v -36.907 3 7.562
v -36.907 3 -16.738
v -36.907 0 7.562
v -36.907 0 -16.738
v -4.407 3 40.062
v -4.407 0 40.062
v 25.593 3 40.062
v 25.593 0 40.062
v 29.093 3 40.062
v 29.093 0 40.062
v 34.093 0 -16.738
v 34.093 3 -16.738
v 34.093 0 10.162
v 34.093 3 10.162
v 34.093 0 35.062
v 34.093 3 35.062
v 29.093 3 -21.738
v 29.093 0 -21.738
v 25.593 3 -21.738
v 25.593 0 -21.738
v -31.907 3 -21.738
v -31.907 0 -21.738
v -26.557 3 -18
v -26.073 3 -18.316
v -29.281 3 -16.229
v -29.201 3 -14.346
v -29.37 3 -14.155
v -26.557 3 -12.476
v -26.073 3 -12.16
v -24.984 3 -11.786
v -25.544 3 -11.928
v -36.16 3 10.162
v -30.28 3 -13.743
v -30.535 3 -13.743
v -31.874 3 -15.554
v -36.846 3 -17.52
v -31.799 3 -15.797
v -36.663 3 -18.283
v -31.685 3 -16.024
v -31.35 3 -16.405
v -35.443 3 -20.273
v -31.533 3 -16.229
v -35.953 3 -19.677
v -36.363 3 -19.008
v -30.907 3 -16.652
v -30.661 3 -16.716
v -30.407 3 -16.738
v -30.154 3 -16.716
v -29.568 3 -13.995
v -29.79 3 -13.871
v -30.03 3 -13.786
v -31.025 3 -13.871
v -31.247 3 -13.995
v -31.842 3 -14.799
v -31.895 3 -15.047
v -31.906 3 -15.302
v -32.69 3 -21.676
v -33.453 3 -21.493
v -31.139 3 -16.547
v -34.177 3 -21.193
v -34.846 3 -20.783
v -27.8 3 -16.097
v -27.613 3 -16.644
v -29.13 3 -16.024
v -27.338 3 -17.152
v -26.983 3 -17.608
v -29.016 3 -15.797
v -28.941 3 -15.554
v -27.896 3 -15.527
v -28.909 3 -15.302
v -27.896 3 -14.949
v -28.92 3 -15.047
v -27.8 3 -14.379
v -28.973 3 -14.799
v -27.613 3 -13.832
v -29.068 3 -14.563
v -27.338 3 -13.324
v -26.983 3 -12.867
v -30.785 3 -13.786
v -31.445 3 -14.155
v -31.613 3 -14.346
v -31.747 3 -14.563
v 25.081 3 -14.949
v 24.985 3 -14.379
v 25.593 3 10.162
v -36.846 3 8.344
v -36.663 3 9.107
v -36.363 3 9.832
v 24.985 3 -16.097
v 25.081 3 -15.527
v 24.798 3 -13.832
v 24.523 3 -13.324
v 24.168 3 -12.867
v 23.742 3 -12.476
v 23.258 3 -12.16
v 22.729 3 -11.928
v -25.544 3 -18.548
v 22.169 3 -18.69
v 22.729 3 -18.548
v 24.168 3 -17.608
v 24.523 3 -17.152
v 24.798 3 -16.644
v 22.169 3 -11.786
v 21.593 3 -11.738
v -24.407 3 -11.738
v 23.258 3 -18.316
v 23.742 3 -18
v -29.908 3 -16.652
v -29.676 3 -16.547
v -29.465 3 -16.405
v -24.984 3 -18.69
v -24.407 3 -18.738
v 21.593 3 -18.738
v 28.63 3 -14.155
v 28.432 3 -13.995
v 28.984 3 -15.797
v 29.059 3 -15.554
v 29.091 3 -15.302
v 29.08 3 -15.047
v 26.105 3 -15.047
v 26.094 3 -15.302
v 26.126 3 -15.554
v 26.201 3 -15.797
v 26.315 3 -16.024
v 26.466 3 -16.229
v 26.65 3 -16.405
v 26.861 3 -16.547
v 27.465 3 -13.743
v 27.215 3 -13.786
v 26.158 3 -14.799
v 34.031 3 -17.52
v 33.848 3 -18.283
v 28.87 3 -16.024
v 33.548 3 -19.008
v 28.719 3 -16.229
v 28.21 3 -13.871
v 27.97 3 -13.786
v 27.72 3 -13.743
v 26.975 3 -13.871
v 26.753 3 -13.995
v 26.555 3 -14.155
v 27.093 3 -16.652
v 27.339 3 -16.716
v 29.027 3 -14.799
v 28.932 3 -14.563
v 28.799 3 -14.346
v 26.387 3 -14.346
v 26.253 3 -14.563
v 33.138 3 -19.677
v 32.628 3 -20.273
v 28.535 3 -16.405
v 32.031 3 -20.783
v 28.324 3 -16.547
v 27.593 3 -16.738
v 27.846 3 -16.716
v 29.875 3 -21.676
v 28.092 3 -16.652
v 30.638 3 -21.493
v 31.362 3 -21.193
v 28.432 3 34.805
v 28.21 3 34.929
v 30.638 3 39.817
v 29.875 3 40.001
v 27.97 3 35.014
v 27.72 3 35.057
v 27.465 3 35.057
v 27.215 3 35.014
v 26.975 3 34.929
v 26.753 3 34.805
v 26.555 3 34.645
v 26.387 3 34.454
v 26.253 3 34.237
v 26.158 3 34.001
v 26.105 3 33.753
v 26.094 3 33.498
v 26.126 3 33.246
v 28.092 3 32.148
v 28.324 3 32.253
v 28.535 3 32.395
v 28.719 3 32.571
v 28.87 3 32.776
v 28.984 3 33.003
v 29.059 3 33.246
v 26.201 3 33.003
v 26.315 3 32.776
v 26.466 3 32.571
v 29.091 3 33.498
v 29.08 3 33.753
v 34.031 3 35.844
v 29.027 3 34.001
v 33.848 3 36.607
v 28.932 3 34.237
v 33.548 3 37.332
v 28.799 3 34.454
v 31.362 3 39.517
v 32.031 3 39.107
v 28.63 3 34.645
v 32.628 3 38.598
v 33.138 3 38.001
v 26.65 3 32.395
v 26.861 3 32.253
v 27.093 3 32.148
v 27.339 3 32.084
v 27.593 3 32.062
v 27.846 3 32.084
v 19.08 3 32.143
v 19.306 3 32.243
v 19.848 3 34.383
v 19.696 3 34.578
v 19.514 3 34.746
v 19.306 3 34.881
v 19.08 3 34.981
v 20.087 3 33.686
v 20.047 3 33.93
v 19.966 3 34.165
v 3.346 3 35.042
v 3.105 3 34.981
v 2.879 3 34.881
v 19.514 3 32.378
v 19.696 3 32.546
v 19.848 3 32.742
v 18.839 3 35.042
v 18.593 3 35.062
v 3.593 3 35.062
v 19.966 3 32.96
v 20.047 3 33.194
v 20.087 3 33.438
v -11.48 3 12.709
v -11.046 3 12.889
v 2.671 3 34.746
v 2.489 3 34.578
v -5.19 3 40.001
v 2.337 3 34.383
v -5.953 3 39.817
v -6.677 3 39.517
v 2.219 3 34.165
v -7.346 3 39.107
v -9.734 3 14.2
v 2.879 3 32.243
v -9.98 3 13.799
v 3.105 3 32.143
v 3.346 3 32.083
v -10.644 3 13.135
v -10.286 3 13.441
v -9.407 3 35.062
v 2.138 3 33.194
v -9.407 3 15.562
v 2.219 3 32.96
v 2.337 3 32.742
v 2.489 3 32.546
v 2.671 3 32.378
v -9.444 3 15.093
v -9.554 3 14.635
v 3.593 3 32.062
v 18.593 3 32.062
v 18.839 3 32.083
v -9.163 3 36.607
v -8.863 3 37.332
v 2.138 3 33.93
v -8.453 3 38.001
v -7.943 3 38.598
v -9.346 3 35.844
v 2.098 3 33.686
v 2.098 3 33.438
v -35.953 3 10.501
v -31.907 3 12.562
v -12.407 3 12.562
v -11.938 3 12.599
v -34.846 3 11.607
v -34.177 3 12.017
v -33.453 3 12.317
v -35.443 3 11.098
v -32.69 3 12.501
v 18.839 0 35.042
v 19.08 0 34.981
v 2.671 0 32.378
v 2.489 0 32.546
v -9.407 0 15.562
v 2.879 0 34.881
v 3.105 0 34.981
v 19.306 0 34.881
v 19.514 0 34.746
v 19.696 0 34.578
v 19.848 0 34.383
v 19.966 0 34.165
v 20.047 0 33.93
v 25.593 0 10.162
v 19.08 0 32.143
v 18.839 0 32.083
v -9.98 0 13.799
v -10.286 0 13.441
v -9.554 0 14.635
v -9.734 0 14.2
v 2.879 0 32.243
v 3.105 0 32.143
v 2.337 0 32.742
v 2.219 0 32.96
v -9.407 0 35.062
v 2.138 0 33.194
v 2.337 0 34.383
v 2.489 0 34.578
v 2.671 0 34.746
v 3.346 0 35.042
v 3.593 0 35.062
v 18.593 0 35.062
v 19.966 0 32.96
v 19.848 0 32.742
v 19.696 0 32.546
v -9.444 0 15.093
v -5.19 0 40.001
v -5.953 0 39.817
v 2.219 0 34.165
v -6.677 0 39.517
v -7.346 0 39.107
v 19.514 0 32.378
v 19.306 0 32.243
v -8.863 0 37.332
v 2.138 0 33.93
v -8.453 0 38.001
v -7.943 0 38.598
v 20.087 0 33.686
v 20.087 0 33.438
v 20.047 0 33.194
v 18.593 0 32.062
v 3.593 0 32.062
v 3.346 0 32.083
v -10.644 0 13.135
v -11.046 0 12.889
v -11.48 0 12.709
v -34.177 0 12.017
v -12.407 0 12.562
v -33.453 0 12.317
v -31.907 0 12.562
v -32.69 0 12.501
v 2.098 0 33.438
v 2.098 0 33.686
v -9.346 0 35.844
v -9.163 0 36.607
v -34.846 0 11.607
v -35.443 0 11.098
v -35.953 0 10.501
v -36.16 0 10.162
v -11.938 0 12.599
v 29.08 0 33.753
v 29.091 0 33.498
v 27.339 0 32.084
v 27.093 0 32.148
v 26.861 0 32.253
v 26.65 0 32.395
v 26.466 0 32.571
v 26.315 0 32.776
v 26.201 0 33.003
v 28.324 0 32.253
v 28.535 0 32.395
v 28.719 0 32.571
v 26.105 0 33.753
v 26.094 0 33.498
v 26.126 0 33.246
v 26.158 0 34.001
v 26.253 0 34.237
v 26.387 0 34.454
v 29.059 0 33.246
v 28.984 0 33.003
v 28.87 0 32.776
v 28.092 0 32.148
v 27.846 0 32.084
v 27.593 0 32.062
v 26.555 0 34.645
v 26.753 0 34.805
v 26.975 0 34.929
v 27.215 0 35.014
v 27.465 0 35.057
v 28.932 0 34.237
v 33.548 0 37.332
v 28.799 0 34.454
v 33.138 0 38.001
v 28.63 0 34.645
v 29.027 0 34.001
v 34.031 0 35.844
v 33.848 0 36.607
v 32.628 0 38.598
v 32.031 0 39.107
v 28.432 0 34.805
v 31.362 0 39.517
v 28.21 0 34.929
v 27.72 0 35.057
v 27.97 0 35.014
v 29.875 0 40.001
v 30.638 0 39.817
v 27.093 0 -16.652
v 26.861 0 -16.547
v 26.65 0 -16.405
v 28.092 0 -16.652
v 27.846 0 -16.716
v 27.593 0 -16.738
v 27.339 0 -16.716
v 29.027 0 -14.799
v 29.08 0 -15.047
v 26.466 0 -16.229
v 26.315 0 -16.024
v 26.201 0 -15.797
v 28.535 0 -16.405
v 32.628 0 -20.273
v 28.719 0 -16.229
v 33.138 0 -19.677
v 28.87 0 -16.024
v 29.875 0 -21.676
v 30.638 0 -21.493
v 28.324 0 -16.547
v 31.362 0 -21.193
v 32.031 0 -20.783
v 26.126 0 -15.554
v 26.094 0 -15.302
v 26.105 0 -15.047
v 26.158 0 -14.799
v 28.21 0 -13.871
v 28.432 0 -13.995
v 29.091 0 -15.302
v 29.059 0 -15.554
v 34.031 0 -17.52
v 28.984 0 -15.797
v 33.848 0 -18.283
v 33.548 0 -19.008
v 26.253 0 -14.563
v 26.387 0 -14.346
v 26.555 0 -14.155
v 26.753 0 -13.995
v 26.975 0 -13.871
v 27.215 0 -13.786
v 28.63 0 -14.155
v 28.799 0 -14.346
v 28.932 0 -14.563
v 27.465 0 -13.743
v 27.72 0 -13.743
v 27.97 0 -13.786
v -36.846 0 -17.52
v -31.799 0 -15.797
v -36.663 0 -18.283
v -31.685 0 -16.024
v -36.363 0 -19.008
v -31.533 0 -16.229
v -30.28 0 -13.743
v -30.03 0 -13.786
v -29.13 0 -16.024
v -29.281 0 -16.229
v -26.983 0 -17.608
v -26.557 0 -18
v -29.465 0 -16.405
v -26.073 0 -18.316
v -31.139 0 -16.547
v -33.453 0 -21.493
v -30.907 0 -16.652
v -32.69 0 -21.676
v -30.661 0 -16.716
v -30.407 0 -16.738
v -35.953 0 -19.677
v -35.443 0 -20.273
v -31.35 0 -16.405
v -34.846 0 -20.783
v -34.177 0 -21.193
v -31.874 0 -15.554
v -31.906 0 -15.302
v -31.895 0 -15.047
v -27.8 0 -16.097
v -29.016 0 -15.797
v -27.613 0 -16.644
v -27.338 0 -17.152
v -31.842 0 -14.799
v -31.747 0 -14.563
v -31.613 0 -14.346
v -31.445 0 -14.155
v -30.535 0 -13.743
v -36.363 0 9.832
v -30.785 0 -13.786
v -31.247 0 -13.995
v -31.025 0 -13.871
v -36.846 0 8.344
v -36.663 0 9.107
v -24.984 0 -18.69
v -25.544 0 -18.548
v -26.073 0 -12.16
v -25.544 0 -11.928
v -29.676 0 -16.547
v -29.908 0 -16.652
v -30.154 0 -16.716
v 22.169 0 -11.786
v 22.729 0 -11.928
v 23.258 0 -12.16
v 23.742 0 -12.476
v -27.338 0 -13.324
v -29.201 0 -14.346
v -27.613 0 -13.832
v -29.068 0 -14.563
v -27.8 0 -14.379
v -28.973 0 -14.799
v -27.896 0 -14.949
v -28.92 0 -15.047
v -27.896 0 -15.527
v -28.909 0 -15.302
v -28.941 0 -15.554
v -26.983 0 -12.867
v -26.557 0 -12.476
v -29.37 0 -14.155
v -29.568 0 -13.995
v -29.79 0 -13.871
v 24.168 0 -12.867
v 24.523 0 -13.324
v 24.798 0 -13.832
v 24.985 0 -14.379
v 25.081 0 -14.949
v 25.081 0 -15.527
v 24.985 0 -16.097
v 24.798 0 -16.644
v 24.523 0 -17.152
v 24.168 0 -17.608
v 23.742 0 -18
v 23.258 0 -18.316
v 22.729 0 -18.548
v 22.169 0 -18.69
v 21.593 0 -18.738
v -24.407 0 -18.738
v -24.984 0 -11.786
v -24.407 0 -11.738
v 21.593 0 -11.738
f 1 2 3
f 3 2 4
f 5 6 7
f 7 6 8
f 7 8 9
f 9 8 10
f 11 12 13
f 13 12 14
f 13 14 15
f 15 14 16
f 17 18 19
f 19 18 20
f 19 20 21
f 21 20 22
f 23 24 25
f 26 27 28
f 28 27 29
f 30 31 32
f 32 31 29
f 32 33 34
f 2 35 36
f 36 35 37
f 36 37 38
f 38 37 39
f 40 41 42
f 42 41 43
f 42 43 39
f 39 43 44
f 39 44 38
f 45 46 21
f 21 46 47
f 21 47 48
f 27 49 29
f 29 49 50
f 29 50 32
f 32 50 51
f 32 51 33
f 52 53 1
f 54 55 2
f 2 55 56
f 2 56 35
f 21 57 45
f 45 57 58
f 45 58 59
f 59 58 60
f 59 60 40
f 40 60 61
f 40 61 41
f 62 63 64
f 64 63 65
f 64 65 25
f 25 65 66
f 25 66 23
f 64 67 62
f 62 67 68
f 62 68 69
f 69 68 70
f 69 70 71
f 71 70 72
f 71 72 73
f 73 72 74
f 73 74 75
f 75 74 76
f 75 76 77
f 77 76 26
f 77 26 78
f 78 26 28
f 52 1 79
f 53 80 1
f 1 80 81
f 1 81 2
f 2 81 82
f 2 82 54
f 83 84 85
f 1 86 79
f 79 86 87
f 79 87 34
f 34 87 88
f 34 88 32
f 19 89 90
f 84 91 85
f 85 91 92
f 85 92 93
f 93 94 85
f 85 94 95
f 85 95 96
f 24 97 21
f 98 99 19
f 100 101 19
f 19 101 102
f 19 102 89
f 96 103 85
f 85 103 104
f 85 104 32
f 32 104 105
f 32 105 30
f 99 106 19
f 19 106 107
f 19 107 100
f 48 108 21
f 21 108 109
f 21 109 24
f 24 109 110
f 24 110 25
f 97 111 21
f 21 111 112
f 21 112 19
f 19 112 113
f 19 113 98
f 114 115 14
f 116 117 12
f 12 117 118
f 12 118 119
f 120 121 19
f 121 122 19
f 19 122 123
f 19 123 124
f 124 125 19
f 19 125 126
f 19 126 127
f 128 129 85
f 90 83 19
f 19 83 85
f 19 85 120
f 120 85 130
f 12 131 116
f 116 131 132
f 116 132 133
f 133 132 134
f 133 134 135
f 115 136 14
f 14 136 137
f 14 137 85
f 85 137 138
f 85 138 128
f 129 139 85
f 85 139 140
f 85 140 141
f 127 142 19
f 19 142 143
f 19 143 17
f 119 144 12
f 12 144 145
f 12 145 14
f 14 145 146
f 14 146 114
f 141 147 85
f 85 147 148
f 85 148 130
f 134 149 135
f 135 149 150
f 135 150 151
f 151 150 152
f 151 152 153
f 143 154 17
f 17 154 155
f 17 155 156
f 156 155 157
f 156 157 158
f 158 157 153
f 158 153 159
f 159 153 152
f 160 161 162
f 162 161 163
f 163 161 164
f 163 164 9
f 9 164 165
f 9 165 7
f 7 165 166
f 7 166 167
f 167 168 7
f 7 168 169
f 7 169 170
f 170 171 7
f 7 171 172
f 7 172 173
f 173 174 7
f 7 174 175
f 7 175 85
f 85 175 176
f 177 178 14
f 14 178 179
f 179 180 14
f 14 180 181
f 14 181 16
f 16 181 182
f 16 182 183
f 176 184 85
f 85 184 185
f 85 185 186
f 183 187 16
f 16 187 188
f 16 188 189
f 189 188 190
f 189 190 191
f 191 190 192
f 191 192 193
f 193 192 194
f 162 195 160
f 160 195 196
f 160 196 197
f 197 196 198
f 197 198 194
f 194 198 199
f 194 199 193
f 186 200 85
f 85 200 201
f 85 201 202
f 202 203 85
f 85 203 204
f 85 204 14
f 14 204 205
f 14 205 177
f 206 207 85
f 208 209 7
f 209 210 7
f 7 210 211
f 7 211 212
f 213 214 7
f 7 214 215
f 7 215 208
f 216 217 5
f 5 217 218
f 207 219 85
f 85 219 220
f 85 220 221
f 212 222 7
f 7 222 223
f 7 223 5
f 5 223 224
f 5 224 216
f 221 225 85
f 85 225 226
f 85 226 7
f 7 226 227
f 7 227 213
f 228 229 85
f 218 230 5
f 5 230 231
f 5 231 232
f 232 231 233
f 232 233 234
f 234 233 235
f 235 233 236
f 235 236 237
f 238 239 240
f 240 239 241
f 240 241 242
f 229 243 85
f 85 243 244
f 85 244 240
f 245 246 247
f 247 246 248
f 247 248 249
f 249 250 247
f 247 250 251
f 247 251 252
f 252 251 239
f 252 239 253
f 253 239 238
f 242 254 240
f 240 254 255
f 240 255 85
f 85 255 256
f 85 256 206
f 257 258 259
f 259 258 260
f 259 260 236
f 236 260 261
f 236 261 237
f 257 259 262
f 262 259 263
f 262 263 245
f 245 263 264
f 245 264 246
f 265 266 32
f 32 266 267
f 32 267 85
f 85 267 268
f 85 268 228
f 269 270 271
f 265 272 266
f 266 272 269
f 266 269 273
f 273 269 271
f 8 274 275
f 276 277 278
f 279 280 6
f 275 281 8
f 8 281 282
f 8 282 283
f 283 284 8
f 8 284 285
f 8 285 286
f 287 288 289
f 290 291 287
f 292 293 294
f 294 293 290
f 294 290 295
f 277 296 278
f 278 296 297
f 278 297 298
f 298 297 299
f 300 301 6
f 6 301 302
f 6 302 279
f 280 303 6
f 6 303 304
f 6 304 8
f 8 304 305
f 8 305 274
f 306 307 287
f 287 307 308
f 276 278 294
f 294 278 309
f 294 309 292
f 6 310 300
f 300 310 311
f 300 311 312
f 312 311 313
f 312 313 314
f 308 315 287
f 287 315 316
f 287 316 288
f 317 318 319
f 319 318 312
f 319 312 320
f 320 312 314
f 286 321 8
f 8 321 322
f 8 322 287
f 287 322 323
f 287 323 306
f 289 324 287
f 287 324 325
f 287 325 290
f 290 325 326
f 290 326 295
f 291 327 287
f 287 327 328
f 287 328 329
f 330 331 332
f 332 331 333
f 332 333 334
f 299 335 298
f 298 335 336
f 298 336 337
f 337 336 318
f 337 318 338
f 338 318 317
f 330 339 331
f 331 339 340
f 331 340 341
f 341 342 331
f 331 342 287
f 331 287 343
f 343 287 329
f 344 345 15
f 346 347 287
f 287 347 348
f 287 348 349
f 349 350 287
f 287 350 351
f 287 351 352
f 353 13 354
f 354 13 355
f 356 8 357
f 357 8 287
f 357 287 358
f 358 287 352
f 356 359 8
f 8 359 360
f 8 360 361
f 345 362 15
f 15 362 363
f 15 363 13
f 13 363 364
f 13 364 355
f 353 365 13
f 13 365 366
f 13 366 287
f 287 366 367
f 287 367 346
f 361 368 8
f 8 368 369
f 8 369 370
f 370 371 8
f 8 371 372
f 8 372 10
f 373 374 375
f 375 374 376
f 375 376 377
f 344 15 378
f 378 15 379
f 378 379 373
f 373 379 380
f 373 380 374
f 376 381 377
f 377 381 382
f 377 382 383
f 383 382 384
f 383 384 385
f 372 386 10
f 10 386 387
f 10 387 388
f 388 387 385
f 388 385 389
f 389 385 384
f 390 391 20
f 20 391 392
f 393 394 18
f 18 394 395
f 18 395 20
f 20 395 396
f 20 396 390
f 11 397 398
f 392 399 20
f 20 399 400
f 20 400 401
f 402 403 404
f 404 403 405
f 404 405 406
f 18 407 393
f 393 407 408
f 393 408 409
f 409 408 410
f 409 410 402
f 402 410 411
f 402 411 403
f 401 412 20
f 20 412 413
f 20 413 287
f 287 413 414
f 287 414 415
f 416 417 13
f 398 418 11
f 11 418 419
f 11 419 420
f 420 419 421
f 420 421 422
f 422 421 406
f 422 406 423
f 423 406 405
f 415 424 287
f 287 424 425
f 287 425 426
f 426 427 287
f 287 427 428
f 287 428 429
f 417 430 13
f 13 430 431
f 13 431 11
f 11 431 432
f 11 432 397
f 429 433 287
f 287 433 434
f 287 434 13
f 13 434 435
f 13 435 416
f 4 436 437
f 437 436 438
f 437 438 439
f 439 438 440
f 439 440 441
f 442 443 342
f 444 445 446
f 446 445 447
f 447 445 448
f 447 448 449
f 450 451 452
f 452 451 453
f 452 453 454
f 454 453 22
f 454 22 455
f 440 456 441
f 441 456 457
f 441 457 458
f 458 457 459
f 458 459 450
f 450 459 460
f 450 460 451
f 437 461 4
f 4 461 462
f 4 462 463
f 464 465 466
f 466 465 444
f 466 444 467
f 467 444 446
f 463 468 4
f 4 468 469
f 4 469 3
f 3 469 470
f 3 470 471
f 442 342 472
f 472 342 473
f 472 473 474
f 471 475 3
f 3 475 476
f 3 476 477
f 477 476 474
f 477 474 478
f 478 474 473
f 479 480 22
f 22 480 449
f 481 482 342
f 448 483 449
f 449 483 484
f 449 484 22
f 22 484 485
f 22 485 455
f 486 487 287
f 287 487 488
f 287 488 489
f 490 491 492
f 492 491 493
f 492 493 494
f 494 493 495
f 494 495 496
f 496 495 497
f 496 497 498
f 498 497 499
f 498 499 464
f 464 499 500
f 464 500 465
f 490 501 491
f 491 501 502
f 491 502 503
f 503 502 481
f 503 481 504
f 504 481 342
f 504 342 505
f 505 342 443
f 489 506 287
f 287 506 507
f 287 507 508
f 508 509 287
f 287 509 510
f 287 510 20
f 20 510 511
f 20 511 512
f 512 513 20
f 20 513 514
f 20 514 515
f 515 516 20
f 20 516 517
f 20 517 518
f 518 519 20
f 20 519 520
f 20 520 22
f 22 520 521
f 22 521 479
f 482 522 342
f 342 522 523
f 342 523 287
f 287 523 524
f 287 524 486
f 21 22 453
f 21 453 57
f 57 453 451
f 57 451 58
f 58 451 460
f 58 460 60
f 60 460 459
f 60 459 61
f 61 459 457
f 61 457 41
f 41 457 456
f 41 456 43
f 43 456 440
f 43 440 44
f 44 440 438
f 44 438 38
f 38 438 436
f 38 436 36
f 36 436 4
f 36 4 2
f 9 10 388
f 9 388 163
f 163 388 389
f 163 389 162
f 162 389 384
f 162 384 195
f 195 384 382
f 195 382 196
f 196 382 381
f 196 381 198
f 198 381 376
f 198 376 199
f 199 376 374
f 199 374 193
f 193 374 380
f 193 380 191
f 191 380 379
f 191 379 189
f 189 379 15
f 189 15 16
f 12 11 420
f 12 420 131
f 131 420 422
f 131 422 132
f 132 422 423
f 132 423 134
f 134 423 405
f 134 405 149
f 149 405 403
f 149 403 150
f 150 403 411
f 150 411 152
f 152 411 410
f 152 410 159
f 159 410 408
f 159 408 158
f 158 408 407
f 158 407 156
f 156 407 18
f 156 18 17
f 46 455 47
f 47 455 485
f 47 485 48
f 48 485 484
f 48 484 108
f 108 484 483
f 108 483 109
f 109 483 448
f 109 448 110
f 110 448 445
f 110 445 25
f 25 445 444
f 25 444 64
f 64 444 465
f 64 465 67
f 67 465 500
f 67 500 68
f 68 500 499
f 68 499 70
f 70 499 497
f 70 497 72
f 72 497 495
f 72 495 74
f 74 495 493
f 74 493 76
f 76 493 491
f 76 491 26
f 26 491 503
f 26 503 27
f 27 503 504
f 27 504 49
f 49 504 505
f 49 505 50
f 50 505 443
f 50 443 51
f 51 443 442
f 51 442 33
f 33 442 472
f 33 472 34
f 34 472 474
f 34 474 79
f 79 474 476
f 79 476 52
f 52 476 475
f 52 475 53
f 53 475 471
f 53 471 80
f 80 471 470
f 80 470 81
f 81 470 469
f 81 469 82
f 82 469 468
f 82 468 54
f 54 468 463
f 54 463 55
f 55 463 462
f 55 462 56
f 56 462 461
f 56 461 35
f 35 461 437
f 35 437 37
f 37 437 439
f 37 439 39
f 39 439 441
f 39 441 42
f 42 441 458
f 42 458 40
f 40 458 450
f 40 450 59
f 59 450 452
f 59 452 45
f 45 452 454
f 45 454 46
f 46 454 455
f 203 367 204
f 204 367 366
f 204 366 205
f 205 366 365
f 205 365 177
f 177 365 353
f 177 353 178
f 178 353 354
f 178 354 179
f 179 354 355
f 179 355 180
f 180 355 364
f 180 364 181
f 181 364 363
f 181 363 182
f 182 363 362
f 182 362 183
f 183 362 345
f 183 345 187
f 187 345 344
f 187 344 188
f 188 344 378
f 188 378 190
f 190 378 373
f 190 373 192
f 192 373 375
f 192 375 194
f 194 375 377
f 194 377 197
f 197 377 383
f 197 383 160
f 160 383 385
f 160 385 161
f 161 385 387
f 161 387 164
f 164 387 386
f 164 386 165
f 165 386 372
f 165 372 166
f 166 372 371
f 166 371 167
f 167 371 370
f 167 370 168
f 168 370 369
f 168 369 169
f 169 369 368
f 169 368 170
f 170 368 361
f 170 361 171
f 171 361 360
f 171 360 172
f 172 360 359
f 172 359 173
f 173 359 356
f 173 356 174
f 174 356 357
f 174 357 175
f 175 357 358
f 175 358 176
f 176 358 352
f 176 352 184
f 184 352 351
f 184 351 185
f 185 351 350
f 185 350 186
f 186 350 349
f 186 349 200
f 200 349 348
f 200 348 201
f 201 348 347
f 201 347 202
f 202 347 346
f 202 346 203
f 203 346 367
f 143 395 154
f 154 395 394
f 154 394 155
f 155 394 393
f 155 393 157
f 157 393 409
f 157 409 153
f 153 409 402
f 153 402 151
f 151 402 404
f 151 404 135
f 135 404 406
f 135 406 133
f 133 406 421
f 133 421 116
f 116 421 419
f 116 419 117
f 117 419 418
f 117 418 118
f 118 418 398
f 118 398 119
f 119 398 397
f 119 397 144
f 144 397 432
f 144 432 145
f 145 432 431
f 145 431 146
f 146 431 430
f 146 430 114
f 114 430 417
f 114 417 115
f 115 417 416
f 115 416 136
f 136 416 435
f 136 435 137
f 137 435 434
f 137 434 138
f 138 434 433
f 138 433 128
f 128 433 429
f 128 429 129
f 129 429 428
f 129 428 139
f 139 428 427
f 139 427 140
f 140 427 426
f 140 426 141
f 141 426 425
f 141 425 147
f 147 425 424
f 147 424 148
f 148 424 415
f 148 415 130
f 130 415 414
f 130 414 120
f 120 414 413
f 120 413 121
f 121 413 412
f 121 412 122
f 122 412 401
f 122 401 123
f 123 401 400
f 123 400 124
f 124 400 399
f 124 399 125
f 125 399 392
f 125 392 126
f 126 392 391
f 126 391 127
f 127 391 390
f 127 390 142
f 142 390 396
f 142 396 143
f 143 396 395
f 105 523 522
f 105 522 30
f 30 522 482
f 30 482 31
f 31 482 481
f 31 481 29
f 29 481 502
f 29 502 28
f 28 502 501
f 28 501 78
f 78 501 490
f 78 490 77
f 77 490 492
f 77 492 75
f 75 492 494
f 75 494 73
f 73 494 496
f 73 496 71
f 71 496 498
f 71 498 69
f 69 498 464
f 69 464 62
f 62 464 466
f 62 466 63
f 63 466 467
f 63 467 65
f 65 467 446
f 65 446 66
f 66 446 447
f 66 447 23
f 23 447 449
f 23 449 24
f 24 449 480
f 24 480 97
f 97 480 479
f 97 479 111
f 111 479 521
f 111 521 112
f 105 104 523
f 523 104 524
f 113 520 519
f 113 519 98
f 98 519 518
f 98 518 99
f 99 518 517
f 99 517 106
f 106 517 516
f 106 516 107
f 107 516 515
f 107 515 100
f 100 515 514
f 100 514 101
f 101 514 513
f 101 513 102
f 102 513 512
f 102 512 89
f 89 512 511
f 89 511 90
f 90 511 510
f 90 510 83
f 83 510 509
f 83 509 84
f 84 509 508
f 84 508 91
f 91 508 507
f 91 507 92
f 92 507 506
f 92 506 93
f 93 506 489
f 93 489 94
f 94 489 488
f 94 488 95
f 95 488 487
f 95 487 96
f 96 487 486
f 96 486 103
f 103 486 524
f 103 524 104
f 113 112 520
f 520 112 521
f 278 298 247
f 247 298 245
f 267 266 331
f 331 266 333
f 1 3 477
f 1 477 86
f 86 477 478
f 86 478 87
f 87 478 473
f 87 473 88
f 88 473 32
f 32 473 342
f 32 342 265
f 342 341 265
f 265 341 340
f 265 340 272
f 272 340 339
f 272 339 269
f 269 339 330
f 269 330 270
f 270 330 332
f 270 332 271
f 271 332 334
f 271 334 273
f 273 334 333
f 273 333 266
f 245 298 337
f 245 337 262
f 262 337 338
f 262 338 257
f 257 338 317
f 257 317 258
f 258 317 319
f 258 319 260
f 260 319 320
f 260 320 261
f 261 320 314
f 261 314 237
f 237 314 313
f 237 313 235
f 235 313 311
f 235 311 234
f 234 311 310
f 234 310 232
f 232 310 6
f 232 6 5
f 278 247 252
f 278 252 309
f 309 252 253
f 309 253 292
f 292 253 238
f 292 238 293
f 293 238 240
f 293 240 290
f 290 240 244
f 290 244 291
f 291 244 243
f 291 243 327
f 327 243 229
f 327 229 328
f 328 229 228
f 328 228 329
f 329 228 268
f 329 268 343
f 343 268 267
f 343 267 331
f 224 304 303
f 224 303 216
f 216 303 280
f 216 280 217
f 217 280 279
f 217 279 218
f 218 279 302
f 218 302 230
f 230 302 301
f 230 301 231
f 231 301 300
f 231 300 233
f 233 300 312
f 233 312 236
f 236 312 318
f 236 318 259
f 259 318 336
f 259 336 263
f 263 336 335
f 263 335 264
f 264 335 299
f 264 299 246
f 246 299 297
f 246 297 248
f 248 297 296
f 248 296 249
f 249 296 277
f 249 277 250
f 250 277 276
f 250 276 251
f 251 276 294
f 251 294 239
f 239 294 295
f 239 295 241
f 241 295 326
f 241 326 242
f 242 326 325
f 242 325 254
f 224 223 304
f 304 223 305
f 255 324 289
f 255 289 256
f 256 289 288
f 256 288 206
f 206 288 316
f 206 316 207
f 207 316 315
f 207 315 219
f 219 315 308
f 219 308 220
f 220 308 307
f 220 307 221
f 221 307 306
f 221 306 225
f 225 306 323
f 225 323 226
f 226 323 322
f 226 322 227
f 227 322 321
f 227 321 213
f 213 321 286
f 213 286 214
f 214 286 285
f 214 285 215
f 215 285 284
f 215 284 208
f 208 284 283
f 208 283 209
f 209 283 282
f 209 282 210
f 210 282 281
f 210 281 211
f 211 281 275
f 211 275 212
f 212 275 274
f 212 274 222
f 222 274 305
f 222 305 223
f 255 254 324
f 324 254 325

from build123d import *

# Parameters (mm, degrees)
SKETCH_1_W          = 71
SKETCH_1_H          = 61.8
EXTRUDE_1_DEPTH     = 3
FILLET_1_R          = 5
FILLET_3_R          = 5
FILLET_4_R          = 5
SKETCH_2_R          = 1.5
CUT_EXTRUDE_1_DEPTH = 4
CUT_EXTRUDE_2_DEPTH = 4
SKETCH_6_W          = 27.5
SKETCH_6_H          = 27.5
CUT_EXTRUDE_3_DEPTH = 4
FILLET_5_R          = 5
FILLET_6_R          = 3
CUT_EXTRUDE_4_DEPTH = 4


with BuildPart() as part:
    # 草图1 → 凸台-拉伸1 (new body)
    with BuildSketch(Plane(origin=(0, 0, 0), x_dir=(1, 0, 0), z_dir=(0, 1, 0))):
        with Locations((-1.407488987, -9.162114537)):
            Rectangle(SKETCH_1_W, SKETCH_1_H)
    extrude(amount=EXTRUDE_1_DEPTH)

    # 圆角1
    fillet_1_edges = [part.edges().sort_by_distance(p)[0] for p in [
        (-36.907488987, 1.5, -21.737885463),
    ]]
    fillet(fillet_1_edges, radius=FILLET_1_R)

    # 圆角3
    fillet_3_edges = [part.edges().sort_by_distance(p)[0] for p in [
        (34.092511013, 1.5, 40.062114537),
    ]]
    fillet(fillet_3_edges, radius=FILLET_3_R)

    # 圆角4
    fillet_4_edges = [part.edges().sort_by_distance(p)[0] for p in [
        (34.092511013, 1.5, -21.737885463),
    ]]
    fillet(fillet_4_edges, radius=FILLET_4_R)

    # 草图2 → 切除-拉伸1 (cut, through all)
    with BuildSketch(Plane(origin=(0, 0, 0), x_dir=(-1, 0, 0), z_dir=(0, -1, 0))):
        with Locations((30.407488987, 15.237885463)):
            Circle(SKETCH_2_R)
        with Locations((-27.592511013, -33.562114537)):
            Circle(SKETCH_2_R)
        with Locations((-27.592511013, 15.237885463)):
            Circle(SKETCH_2_R)
    extrude(amount=-CUT_EXTRUDE_1_DEPTH, mode=Mode.SUBTRACT)

    # 草图5 → 切除-拉伸2 (cut, through all)
    with BuildSketch(Plane(origin=(0, 0, 0), x_dir=(-1, 0, 0), z_dir=(0, -1, 0))):
        with BuildLine():
            Line((24.407488987, 11.737885463), (-21.592511013, 11.737885463))
            ThreePointArc((-21.592511013, 11.737885463), (-25.092511013, 15.237885463), (-21.592511013, 18.737885463))
            Line((-21.592511013, 18.737885463), (24.407488987, 18.737885463))
            ThreePointArc((24.407488987, 18.737885463), (27.907488987, 15.237885463), (24.407488987, 11.737885463))
        make_face()
    extrude(amount=-CUT_EXTRUDE_2_DEPTH, mode=Mode.SUBTRACT)

    # 草图6 → 切除-拉伸3 (cut, through all)
    with BuildSketch(Plane.XZ):
        with Locations((-23.157488987, 26.312114537)):
            Rectangle(SKETCH_6_W, SKETCH_6_H)
    extrude(amount=-CUT_EXTRUDE_3_DEPTH, mode=Mode.SUBTRACT)

    # 圆角5
    fillet_5_edges = [part.edges().sort_by_distance(p)[0] for p in [
        (-36.907488987, 1.5, 12.562114537),
        (-9.407488987, 1.5, 40.062114537),
    ]]
    fillet(fillet_5_edges, radius=FILLET_5_R)

    # 圆角6
    fillet_6_edges = [part.edges().sort_by_distance(p)[0] for p in [
        (-9.407488987, 1.5, 12.562114537),
    ]]
    fillet(fillet_6_edges, radius=FILLET_6_R)

    # 草图7 → 切除-拉伸4 (cut, through all)
    with BuildSketch(Plane.XZ):
        with BuildLine():
            Line((3.592511013, 35.062114537), (18.592511013, 35.062114537))
            ThreePointArc((18.592511013, 35.062114537), (20.092511013, 33.562114537), (18.592511013, 32.062114537))
            Line((18.592511013, 32.062114537), (3.592511013, 32.062114537))
            ThreePointArc((3.592511013, 32.062114537), (2.092511013, 33.562114537), (3.592511013, 35.062114537))
        make_face()
    extrude(amount=-CUT_EXTRUDE_4_DEPTH, mode=Mode.SUBTRACT)


solid = part.part
